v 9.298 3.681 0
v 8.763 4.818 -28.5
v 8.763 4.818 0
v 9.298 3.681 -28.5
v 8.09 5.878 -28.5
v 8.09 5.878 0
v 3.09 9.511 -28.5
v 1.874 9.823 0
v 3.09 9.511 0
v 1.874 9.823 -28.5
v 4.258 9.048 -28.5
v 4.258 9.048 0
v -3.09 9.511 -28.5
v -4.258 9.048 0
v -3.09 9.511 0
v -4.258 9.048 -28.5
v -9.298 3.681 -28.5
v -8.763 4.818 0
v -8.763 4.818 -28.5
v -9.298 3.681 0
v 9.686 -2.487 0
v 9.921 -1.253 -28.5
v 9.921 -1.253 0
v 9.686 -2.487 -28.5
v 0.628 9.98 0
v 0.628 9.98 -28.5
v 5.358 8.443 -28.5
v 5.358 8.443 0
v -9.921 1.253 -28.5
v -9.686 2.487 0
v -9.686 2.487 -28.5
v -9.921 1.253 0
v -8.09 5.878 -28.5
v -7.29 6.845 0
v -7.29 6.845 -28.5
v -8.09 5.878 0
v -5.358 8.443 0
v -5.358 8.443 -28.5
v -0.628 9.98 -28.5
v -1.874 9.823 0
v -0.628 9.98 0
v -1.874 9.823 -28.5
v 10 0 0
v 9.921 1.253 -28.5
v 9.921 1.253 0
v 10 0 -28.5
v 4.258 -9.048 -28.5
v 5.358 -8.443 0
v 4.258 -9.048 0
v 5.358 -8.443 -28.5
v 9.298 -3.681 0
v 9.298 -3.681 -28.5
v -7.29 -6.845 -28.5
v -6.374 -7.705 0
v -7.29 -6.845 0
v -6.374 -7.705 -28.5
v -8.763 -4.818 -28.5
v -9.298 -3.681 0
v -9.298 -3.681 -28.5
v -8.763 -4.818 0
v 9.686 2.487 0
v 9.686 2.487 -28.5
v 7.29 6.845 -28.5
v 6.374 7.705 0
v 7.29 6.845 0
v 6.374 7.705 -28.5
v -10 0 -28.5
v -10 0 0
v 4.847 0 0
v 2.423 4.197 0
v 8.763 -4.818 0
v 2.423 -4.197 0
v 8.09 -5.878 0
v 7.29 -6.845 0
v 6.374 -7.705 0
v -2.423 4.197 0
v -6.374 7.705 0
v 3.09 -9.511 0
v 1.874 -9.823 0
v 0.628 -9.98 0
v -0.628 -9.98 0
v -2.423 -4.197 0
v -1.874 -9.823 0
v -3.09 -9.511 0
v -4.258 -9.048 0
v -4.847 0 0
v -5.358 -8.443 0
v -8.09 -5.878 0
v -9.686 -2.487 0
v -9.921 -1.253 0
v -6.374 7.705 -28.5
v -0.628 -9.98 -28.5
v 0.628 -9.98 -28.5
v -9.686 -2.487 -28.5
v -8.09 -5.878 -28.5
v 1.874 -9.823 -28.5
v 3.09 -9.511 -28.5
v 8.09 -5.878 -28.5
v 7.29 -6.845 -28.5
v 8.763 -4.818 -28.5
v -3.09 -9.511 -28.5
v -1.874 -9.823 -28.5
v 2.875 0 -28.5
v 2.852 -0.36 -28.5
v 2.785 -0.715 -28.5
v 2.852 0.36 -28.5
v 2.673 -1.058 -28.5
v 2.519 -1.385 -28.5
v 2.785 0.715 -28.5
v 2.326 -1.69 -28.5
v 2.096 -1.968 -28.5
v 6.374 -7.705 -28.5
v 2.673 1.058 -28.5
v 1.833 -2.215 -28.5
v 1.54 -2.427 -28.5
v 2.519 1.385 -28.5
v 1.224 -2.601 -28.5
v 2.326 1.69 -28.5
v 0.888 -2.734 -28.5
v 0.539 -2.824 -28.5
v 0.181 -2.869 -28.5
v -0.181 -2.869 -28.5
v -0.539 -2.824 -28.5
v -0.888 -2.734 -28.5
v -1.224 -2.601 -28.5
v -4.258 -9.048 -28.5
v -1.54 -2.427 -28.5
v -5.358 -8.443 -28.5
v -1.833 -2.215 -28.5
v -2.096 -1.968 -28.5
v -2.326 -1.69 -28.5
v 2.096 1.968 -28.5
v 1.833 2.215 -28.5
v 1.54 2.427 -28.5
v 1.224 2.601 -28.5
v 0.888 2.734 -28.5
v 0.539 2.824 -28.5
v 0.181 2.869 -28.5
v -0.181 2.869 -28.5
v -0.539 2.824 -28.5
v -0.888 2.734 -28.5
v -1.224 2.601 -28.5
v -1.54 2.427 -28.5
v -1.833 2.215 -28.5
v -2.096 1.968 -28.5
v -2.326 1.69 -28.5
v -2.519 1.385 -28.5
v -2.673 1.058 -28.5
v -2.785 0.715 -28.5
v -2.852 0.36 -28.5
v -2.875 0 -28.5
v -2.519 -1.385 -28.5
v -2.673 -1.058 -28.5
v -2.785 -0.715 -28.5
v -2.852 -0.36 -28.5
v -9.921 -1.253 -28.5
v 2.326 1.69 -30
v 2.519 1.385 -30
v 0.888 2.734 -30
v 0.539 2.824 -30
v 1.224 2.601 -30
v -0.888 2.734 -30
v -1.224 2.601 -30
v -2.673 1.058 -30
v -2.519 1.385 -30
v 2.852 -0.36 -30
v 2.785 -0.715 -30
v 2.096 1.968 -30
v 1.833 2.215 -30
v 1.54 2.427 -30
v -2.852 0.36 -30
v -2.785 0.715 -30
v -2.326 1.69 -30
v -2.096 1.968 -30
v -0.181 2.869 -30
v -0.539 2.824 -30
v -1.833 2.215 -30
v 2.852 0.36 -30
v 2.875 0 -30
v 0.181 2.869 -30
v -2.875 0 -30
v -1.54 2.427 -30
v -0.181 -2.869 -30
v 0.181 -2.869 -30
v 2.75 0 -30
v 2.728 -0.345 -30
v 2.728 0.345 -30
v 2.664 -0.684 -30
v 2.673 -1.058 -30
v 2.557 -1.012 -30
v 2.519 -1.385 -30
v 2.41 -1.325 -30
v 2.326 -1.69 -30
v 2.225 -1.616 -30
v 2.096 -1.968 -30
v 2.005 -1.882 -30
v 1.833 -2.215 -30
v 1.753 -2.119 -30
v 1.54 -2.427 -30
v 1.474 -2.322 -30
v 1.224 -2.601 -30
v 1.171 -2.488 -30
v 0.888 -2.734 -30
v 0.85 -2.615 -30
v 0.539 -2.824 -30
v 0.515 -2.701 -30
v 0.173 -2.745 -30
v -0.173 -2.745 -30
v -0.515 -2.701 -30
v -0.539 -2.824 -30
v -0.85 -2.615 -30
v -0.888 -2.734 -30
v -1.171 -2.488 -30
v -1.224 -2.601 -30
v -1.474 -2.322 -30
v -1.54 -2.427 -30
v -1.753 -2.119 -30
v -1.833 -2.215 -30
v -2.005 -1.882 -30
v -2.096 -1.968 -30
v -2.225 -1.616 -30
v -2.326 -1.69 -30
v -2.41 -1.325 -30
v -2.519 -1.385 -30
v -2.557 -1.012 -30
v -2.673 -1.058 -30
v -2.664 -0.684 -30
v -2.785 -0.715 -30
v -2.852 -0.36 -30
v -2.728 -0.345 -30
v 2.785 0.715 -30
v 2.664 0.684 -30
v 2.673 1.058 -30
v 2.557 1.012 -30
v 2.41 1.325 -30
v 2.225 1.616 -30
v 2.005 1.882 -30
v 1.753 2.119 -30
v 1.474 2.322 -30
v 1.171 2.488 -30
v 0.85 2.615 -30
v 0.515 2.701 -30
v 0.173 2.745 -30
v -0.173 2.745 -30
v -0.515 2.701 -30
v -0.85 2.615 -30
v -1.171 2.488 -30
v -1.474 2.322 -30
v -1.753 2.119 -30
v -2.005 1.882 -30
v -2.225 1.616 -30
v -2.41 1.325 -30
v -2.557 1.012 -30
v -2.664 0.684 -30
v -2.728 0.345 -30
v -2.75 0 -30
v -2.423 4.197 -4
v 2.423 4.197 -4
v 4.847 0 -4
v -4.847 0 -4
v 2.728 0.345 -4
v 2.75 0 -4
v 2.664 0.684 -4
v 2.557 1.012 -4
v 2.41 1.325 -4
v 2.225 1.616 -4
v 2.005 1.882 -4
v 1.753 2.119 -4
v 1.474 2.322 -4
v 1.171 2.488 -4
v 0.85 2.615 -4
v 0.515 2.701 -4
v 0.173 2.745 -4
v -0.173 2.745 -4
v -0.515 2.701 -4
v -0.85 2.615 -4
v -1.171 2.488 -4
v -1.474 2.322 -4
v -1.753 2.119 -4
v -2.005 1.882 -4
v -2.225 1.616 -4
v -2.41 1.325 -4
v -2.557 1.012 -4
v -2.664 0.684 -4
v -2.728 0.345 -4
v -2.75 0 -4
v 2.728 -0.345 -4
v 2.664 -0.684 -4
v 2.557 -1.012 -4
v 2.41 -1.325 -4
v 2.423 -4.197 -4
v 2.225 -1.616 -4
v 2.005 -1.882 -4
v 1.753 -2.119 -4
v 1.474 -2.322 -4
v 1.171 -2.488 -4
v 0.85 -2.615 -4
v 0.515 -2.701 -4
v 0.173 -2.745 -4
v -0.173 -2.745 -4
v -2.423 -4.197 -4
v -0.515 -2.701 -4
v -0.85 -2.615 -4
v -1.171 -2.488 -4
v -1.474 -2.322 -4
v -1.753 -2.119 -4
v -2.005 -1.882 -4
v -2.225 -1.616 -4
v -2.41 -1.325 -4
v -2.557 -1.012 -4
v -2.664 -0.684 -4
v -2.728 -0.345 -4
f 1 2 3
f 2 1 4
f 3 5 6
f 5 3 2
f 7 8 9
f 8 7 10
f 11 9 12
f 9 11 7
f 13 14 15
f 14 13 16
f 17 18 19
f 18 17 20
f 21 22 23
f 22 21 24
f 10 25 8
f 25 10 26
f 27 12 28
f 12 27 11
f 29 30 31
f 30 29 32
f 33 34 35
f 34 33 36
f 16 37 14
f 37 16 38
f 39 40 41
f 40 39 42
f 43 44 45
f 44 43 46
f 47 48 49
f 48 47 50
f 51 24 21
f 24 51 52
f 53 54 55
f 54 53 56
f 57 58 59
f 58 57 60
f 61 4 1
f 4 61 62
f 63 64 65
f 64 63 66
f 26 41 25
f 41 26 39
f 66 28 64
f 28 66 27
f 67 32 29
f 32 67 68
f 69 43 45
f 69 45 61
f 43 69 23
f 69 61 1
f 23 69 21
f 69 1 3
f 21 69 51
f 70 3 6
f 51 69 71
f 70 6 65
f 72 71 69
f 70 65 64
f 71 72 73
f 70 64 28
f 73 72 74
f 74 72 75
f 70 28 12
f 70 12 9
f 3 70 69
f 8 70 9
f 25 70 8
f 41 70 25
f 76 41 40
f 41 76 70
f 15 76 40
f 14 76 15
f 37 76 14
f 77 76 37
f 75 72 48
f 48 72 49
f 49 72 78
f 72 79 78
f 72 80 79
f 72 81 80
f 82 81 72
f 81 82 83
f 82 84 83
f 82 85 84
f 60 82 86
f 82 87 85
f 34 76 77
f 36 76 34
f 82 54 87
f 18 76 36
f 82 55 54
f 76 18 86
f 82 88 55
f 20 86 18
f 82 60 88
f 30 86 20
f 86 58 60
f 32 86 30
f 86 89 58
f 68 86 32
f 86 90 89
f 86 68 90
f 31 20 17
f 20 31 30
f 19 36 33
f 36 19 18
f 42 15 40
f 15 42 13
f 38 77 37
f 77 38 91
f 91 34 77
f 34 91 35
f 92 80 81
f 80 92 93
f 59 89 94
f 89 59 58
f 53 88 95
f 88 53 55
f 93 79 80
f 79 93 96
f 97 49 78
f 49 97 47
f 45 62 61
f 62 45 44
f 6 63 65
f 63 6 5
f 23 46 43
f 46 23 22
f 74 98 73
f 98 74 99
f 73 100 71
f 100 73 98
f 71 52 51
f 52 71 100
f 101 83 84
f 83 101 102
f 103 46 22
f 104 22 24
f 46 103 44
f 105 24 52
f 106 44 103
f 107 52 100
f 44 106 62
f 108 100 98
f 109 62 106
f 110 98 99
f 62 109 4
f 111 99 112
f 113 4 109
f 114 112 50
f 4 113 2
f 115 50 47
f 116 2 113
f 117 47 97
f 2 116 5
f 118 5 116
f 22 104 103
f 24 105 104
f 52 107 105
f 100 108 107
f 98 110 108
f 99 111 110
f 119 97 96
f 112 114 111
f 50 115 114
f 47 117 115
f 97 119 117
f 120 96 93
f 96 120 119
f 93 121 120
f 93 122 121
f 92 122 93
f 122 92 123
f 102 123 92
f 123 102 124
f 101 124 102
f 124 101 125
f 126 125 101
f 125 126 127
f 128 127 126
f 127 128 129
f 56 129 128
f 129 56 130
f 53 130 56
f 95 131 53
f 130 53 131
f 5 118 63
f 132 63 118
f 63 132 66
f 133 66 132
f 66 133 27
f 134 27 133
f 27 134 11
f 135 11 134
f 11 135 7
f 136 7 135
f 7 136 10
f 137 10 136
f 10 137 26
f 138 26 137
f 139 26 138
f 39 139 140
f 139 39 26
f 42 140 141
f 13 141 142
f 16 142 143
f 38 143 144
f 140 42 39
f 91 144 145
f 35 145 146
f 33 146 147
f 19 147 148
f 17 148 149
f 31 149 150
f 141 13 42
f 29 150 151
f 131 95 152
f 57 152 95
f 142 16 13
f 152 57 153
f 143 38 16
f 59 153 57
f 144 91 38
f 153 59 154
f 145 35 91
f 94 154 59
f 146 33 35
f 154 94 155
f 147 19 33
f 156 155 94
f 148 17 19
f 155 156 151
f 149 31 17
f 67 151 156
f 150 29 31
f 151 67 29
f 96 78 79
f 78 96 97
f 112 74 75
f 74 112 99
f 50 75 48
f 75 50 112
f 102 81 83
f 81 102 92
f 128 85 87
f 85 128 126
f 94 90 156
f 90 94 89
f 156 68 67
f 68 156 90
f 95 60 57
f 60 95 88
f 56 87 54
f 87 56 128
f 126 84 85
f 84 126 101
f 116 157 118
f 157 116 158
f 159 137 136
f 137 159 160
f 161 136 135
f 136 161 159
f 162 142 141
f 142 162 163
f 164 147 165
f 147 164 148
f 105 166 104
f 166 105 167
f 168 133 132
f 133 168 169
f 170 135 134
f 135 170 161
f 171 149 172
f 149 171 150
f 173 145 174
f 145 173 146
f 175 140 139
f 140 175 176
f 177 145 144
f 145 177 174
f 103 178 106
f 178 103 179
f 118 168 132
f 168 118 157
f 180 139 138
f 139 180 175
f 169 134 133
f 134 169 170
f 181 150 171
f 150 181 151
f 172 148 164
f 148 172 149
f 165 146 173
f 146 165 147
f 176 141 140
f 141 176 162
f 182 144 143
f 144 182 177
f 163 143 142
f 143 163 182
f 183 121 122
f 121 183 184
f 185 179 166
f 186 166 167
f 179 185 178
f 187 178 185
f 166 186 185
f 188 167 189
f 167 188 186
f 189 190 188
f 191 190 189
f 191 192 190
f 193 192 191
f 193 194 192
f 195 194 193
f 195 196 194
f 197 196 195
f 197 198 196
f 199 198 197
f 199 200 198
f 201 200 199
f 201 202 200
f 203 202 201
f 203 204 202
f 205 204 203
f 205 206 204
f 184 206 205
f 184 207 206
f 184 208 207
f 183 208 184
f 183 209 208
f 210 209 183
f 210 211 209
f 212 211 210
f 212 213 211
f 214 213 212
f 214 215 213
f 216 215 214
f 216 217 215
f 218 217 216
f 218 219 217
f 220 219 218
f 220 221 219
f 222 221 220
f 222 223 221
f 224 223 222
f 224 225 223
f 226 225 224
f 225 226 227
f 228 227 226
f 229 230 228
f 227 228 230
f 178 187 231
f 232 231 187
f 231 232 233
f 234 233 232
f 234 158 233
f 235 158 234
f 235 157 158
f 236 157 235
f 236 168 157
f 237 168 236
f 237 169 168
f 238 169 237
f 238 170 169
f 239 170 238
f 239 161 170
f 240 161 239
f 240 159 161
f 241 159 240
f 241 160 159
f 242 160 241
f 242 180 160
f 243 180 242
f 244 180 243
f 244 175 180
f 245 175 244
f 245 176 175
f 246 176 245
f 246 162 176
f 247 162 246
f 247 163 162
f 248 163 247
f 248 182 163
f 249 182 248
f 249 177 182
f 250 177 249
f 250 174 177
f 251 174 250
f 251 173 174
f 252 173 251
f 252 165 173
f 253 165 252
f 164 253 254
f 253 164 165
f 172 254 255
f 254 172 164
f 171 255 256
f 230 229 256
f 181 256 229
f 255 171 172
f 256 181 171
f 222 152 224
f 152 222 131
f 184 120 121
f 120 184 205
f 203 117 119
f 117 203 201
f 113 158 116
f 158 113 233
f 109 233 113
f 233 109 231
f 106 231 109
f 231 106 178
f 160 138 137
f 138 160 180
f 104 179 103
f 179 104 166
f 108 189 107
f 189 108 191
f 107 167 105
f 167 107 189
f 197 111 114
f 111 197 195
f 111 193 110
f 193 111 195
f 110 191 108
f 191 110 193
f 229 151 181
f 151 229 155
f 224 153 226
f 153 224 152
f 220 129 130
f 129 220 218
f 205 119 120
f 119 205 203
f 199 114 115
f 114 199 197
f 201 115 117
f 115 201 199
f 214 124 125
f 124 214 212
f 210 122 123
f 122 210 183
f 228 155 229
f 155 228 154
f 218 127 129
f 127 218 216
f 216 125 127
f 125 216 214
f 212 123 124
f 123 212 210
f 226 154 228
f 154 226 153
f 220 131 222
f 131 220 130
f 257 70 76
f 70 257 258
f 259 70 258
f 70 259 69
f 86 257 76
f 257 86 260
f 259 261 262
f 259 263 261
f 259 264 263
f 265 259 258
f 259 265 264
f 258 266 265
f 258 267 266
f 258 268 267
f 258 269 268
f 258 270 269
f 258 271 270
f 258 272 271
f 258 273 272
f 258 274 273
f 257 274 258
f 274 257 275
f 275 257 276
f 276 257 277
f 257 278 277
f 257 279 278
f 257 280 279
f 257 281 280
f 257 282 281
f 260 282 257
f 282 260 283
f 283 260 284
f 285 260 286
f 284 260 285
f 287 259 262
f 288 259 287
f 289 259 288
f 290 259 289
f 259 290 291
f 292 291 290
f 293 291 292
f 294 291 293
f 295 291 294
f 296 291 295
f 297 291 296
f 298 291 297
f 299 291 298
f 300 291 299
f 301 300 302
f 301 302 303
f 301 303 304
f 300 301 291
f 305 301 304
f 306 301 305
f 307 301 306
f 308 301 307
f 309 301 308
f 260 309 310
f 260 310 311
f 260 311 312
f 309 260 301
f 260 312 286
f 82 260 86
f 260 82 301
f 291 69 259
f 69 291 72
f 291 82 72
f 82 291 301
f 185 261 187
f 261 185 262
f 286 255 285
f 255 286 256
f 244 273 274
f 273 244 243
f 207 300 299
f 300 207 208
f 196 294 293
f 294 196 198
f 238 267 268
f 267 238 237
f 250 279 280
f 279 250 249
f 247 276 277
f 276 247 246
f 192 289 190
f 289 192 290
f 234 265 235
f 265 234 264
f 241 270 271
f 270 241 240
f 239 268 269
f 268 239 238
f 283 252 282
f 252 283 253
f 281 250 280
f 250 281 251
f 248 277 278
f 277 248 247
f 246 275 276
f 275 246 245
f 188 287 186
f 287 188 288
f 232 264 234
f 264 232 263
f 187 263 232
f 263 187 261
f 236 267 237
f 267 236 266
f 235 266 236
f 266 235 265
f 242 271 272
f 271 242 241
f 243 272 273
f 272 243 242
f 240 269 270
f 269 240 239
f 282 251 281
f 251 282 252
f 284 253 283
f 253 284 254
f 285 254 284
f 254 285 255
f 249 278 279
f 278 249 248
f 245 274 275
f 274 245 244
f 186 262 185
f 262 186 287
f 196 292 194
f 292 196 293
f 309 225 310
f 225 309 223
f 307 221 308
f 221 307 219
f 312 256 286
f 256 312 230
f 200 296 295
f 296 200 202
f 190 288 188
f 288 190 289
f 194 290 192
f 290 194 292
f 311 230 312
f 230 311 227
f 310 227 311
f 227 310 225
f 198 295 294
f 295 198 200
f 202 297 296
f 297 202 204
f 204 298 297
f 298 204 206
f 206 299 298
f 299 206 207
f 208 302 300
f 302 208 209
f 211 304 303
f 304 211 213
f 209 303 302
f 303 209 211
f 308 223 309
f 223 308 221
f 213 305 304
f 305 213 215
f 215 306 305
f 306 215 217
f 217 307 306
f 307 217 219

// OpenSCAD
$fn = 50;

difference() {
	union() {
		translate(v = [0, 0, -28.5]) {
			cylinder(h = 28.5, r = 10.0);
		}
		#translate(v = [0, 0, -30.0]) {
			cylinder(h = 30, r = 2.875);
		}
	}
	union() {
		translate(v = [0, 0, 0]) {
			rotate(a = [0, 0, 0]) {
				difference() {
					union() {
						translate(v = [0, 0, -4]) {
							linear_extrude(height = 4) {
								polygon(points = [[4.8468, 0.0], [2.4234000000000004, 4.197451927062417], [-2.423399999999999, 4.197451927062417], [-4.8468, 5.935618106107392e-16], [-2.423400000000002, -4.197451927062416], [2.423399999999997, -4.197451927062419]]);
							}
						}
					}
					union();
				}
			}
		}
		#translate(v = [0, 0, -100.0]) {
			cylinder(h = 200, r = 2.75);
		}
	}
}
